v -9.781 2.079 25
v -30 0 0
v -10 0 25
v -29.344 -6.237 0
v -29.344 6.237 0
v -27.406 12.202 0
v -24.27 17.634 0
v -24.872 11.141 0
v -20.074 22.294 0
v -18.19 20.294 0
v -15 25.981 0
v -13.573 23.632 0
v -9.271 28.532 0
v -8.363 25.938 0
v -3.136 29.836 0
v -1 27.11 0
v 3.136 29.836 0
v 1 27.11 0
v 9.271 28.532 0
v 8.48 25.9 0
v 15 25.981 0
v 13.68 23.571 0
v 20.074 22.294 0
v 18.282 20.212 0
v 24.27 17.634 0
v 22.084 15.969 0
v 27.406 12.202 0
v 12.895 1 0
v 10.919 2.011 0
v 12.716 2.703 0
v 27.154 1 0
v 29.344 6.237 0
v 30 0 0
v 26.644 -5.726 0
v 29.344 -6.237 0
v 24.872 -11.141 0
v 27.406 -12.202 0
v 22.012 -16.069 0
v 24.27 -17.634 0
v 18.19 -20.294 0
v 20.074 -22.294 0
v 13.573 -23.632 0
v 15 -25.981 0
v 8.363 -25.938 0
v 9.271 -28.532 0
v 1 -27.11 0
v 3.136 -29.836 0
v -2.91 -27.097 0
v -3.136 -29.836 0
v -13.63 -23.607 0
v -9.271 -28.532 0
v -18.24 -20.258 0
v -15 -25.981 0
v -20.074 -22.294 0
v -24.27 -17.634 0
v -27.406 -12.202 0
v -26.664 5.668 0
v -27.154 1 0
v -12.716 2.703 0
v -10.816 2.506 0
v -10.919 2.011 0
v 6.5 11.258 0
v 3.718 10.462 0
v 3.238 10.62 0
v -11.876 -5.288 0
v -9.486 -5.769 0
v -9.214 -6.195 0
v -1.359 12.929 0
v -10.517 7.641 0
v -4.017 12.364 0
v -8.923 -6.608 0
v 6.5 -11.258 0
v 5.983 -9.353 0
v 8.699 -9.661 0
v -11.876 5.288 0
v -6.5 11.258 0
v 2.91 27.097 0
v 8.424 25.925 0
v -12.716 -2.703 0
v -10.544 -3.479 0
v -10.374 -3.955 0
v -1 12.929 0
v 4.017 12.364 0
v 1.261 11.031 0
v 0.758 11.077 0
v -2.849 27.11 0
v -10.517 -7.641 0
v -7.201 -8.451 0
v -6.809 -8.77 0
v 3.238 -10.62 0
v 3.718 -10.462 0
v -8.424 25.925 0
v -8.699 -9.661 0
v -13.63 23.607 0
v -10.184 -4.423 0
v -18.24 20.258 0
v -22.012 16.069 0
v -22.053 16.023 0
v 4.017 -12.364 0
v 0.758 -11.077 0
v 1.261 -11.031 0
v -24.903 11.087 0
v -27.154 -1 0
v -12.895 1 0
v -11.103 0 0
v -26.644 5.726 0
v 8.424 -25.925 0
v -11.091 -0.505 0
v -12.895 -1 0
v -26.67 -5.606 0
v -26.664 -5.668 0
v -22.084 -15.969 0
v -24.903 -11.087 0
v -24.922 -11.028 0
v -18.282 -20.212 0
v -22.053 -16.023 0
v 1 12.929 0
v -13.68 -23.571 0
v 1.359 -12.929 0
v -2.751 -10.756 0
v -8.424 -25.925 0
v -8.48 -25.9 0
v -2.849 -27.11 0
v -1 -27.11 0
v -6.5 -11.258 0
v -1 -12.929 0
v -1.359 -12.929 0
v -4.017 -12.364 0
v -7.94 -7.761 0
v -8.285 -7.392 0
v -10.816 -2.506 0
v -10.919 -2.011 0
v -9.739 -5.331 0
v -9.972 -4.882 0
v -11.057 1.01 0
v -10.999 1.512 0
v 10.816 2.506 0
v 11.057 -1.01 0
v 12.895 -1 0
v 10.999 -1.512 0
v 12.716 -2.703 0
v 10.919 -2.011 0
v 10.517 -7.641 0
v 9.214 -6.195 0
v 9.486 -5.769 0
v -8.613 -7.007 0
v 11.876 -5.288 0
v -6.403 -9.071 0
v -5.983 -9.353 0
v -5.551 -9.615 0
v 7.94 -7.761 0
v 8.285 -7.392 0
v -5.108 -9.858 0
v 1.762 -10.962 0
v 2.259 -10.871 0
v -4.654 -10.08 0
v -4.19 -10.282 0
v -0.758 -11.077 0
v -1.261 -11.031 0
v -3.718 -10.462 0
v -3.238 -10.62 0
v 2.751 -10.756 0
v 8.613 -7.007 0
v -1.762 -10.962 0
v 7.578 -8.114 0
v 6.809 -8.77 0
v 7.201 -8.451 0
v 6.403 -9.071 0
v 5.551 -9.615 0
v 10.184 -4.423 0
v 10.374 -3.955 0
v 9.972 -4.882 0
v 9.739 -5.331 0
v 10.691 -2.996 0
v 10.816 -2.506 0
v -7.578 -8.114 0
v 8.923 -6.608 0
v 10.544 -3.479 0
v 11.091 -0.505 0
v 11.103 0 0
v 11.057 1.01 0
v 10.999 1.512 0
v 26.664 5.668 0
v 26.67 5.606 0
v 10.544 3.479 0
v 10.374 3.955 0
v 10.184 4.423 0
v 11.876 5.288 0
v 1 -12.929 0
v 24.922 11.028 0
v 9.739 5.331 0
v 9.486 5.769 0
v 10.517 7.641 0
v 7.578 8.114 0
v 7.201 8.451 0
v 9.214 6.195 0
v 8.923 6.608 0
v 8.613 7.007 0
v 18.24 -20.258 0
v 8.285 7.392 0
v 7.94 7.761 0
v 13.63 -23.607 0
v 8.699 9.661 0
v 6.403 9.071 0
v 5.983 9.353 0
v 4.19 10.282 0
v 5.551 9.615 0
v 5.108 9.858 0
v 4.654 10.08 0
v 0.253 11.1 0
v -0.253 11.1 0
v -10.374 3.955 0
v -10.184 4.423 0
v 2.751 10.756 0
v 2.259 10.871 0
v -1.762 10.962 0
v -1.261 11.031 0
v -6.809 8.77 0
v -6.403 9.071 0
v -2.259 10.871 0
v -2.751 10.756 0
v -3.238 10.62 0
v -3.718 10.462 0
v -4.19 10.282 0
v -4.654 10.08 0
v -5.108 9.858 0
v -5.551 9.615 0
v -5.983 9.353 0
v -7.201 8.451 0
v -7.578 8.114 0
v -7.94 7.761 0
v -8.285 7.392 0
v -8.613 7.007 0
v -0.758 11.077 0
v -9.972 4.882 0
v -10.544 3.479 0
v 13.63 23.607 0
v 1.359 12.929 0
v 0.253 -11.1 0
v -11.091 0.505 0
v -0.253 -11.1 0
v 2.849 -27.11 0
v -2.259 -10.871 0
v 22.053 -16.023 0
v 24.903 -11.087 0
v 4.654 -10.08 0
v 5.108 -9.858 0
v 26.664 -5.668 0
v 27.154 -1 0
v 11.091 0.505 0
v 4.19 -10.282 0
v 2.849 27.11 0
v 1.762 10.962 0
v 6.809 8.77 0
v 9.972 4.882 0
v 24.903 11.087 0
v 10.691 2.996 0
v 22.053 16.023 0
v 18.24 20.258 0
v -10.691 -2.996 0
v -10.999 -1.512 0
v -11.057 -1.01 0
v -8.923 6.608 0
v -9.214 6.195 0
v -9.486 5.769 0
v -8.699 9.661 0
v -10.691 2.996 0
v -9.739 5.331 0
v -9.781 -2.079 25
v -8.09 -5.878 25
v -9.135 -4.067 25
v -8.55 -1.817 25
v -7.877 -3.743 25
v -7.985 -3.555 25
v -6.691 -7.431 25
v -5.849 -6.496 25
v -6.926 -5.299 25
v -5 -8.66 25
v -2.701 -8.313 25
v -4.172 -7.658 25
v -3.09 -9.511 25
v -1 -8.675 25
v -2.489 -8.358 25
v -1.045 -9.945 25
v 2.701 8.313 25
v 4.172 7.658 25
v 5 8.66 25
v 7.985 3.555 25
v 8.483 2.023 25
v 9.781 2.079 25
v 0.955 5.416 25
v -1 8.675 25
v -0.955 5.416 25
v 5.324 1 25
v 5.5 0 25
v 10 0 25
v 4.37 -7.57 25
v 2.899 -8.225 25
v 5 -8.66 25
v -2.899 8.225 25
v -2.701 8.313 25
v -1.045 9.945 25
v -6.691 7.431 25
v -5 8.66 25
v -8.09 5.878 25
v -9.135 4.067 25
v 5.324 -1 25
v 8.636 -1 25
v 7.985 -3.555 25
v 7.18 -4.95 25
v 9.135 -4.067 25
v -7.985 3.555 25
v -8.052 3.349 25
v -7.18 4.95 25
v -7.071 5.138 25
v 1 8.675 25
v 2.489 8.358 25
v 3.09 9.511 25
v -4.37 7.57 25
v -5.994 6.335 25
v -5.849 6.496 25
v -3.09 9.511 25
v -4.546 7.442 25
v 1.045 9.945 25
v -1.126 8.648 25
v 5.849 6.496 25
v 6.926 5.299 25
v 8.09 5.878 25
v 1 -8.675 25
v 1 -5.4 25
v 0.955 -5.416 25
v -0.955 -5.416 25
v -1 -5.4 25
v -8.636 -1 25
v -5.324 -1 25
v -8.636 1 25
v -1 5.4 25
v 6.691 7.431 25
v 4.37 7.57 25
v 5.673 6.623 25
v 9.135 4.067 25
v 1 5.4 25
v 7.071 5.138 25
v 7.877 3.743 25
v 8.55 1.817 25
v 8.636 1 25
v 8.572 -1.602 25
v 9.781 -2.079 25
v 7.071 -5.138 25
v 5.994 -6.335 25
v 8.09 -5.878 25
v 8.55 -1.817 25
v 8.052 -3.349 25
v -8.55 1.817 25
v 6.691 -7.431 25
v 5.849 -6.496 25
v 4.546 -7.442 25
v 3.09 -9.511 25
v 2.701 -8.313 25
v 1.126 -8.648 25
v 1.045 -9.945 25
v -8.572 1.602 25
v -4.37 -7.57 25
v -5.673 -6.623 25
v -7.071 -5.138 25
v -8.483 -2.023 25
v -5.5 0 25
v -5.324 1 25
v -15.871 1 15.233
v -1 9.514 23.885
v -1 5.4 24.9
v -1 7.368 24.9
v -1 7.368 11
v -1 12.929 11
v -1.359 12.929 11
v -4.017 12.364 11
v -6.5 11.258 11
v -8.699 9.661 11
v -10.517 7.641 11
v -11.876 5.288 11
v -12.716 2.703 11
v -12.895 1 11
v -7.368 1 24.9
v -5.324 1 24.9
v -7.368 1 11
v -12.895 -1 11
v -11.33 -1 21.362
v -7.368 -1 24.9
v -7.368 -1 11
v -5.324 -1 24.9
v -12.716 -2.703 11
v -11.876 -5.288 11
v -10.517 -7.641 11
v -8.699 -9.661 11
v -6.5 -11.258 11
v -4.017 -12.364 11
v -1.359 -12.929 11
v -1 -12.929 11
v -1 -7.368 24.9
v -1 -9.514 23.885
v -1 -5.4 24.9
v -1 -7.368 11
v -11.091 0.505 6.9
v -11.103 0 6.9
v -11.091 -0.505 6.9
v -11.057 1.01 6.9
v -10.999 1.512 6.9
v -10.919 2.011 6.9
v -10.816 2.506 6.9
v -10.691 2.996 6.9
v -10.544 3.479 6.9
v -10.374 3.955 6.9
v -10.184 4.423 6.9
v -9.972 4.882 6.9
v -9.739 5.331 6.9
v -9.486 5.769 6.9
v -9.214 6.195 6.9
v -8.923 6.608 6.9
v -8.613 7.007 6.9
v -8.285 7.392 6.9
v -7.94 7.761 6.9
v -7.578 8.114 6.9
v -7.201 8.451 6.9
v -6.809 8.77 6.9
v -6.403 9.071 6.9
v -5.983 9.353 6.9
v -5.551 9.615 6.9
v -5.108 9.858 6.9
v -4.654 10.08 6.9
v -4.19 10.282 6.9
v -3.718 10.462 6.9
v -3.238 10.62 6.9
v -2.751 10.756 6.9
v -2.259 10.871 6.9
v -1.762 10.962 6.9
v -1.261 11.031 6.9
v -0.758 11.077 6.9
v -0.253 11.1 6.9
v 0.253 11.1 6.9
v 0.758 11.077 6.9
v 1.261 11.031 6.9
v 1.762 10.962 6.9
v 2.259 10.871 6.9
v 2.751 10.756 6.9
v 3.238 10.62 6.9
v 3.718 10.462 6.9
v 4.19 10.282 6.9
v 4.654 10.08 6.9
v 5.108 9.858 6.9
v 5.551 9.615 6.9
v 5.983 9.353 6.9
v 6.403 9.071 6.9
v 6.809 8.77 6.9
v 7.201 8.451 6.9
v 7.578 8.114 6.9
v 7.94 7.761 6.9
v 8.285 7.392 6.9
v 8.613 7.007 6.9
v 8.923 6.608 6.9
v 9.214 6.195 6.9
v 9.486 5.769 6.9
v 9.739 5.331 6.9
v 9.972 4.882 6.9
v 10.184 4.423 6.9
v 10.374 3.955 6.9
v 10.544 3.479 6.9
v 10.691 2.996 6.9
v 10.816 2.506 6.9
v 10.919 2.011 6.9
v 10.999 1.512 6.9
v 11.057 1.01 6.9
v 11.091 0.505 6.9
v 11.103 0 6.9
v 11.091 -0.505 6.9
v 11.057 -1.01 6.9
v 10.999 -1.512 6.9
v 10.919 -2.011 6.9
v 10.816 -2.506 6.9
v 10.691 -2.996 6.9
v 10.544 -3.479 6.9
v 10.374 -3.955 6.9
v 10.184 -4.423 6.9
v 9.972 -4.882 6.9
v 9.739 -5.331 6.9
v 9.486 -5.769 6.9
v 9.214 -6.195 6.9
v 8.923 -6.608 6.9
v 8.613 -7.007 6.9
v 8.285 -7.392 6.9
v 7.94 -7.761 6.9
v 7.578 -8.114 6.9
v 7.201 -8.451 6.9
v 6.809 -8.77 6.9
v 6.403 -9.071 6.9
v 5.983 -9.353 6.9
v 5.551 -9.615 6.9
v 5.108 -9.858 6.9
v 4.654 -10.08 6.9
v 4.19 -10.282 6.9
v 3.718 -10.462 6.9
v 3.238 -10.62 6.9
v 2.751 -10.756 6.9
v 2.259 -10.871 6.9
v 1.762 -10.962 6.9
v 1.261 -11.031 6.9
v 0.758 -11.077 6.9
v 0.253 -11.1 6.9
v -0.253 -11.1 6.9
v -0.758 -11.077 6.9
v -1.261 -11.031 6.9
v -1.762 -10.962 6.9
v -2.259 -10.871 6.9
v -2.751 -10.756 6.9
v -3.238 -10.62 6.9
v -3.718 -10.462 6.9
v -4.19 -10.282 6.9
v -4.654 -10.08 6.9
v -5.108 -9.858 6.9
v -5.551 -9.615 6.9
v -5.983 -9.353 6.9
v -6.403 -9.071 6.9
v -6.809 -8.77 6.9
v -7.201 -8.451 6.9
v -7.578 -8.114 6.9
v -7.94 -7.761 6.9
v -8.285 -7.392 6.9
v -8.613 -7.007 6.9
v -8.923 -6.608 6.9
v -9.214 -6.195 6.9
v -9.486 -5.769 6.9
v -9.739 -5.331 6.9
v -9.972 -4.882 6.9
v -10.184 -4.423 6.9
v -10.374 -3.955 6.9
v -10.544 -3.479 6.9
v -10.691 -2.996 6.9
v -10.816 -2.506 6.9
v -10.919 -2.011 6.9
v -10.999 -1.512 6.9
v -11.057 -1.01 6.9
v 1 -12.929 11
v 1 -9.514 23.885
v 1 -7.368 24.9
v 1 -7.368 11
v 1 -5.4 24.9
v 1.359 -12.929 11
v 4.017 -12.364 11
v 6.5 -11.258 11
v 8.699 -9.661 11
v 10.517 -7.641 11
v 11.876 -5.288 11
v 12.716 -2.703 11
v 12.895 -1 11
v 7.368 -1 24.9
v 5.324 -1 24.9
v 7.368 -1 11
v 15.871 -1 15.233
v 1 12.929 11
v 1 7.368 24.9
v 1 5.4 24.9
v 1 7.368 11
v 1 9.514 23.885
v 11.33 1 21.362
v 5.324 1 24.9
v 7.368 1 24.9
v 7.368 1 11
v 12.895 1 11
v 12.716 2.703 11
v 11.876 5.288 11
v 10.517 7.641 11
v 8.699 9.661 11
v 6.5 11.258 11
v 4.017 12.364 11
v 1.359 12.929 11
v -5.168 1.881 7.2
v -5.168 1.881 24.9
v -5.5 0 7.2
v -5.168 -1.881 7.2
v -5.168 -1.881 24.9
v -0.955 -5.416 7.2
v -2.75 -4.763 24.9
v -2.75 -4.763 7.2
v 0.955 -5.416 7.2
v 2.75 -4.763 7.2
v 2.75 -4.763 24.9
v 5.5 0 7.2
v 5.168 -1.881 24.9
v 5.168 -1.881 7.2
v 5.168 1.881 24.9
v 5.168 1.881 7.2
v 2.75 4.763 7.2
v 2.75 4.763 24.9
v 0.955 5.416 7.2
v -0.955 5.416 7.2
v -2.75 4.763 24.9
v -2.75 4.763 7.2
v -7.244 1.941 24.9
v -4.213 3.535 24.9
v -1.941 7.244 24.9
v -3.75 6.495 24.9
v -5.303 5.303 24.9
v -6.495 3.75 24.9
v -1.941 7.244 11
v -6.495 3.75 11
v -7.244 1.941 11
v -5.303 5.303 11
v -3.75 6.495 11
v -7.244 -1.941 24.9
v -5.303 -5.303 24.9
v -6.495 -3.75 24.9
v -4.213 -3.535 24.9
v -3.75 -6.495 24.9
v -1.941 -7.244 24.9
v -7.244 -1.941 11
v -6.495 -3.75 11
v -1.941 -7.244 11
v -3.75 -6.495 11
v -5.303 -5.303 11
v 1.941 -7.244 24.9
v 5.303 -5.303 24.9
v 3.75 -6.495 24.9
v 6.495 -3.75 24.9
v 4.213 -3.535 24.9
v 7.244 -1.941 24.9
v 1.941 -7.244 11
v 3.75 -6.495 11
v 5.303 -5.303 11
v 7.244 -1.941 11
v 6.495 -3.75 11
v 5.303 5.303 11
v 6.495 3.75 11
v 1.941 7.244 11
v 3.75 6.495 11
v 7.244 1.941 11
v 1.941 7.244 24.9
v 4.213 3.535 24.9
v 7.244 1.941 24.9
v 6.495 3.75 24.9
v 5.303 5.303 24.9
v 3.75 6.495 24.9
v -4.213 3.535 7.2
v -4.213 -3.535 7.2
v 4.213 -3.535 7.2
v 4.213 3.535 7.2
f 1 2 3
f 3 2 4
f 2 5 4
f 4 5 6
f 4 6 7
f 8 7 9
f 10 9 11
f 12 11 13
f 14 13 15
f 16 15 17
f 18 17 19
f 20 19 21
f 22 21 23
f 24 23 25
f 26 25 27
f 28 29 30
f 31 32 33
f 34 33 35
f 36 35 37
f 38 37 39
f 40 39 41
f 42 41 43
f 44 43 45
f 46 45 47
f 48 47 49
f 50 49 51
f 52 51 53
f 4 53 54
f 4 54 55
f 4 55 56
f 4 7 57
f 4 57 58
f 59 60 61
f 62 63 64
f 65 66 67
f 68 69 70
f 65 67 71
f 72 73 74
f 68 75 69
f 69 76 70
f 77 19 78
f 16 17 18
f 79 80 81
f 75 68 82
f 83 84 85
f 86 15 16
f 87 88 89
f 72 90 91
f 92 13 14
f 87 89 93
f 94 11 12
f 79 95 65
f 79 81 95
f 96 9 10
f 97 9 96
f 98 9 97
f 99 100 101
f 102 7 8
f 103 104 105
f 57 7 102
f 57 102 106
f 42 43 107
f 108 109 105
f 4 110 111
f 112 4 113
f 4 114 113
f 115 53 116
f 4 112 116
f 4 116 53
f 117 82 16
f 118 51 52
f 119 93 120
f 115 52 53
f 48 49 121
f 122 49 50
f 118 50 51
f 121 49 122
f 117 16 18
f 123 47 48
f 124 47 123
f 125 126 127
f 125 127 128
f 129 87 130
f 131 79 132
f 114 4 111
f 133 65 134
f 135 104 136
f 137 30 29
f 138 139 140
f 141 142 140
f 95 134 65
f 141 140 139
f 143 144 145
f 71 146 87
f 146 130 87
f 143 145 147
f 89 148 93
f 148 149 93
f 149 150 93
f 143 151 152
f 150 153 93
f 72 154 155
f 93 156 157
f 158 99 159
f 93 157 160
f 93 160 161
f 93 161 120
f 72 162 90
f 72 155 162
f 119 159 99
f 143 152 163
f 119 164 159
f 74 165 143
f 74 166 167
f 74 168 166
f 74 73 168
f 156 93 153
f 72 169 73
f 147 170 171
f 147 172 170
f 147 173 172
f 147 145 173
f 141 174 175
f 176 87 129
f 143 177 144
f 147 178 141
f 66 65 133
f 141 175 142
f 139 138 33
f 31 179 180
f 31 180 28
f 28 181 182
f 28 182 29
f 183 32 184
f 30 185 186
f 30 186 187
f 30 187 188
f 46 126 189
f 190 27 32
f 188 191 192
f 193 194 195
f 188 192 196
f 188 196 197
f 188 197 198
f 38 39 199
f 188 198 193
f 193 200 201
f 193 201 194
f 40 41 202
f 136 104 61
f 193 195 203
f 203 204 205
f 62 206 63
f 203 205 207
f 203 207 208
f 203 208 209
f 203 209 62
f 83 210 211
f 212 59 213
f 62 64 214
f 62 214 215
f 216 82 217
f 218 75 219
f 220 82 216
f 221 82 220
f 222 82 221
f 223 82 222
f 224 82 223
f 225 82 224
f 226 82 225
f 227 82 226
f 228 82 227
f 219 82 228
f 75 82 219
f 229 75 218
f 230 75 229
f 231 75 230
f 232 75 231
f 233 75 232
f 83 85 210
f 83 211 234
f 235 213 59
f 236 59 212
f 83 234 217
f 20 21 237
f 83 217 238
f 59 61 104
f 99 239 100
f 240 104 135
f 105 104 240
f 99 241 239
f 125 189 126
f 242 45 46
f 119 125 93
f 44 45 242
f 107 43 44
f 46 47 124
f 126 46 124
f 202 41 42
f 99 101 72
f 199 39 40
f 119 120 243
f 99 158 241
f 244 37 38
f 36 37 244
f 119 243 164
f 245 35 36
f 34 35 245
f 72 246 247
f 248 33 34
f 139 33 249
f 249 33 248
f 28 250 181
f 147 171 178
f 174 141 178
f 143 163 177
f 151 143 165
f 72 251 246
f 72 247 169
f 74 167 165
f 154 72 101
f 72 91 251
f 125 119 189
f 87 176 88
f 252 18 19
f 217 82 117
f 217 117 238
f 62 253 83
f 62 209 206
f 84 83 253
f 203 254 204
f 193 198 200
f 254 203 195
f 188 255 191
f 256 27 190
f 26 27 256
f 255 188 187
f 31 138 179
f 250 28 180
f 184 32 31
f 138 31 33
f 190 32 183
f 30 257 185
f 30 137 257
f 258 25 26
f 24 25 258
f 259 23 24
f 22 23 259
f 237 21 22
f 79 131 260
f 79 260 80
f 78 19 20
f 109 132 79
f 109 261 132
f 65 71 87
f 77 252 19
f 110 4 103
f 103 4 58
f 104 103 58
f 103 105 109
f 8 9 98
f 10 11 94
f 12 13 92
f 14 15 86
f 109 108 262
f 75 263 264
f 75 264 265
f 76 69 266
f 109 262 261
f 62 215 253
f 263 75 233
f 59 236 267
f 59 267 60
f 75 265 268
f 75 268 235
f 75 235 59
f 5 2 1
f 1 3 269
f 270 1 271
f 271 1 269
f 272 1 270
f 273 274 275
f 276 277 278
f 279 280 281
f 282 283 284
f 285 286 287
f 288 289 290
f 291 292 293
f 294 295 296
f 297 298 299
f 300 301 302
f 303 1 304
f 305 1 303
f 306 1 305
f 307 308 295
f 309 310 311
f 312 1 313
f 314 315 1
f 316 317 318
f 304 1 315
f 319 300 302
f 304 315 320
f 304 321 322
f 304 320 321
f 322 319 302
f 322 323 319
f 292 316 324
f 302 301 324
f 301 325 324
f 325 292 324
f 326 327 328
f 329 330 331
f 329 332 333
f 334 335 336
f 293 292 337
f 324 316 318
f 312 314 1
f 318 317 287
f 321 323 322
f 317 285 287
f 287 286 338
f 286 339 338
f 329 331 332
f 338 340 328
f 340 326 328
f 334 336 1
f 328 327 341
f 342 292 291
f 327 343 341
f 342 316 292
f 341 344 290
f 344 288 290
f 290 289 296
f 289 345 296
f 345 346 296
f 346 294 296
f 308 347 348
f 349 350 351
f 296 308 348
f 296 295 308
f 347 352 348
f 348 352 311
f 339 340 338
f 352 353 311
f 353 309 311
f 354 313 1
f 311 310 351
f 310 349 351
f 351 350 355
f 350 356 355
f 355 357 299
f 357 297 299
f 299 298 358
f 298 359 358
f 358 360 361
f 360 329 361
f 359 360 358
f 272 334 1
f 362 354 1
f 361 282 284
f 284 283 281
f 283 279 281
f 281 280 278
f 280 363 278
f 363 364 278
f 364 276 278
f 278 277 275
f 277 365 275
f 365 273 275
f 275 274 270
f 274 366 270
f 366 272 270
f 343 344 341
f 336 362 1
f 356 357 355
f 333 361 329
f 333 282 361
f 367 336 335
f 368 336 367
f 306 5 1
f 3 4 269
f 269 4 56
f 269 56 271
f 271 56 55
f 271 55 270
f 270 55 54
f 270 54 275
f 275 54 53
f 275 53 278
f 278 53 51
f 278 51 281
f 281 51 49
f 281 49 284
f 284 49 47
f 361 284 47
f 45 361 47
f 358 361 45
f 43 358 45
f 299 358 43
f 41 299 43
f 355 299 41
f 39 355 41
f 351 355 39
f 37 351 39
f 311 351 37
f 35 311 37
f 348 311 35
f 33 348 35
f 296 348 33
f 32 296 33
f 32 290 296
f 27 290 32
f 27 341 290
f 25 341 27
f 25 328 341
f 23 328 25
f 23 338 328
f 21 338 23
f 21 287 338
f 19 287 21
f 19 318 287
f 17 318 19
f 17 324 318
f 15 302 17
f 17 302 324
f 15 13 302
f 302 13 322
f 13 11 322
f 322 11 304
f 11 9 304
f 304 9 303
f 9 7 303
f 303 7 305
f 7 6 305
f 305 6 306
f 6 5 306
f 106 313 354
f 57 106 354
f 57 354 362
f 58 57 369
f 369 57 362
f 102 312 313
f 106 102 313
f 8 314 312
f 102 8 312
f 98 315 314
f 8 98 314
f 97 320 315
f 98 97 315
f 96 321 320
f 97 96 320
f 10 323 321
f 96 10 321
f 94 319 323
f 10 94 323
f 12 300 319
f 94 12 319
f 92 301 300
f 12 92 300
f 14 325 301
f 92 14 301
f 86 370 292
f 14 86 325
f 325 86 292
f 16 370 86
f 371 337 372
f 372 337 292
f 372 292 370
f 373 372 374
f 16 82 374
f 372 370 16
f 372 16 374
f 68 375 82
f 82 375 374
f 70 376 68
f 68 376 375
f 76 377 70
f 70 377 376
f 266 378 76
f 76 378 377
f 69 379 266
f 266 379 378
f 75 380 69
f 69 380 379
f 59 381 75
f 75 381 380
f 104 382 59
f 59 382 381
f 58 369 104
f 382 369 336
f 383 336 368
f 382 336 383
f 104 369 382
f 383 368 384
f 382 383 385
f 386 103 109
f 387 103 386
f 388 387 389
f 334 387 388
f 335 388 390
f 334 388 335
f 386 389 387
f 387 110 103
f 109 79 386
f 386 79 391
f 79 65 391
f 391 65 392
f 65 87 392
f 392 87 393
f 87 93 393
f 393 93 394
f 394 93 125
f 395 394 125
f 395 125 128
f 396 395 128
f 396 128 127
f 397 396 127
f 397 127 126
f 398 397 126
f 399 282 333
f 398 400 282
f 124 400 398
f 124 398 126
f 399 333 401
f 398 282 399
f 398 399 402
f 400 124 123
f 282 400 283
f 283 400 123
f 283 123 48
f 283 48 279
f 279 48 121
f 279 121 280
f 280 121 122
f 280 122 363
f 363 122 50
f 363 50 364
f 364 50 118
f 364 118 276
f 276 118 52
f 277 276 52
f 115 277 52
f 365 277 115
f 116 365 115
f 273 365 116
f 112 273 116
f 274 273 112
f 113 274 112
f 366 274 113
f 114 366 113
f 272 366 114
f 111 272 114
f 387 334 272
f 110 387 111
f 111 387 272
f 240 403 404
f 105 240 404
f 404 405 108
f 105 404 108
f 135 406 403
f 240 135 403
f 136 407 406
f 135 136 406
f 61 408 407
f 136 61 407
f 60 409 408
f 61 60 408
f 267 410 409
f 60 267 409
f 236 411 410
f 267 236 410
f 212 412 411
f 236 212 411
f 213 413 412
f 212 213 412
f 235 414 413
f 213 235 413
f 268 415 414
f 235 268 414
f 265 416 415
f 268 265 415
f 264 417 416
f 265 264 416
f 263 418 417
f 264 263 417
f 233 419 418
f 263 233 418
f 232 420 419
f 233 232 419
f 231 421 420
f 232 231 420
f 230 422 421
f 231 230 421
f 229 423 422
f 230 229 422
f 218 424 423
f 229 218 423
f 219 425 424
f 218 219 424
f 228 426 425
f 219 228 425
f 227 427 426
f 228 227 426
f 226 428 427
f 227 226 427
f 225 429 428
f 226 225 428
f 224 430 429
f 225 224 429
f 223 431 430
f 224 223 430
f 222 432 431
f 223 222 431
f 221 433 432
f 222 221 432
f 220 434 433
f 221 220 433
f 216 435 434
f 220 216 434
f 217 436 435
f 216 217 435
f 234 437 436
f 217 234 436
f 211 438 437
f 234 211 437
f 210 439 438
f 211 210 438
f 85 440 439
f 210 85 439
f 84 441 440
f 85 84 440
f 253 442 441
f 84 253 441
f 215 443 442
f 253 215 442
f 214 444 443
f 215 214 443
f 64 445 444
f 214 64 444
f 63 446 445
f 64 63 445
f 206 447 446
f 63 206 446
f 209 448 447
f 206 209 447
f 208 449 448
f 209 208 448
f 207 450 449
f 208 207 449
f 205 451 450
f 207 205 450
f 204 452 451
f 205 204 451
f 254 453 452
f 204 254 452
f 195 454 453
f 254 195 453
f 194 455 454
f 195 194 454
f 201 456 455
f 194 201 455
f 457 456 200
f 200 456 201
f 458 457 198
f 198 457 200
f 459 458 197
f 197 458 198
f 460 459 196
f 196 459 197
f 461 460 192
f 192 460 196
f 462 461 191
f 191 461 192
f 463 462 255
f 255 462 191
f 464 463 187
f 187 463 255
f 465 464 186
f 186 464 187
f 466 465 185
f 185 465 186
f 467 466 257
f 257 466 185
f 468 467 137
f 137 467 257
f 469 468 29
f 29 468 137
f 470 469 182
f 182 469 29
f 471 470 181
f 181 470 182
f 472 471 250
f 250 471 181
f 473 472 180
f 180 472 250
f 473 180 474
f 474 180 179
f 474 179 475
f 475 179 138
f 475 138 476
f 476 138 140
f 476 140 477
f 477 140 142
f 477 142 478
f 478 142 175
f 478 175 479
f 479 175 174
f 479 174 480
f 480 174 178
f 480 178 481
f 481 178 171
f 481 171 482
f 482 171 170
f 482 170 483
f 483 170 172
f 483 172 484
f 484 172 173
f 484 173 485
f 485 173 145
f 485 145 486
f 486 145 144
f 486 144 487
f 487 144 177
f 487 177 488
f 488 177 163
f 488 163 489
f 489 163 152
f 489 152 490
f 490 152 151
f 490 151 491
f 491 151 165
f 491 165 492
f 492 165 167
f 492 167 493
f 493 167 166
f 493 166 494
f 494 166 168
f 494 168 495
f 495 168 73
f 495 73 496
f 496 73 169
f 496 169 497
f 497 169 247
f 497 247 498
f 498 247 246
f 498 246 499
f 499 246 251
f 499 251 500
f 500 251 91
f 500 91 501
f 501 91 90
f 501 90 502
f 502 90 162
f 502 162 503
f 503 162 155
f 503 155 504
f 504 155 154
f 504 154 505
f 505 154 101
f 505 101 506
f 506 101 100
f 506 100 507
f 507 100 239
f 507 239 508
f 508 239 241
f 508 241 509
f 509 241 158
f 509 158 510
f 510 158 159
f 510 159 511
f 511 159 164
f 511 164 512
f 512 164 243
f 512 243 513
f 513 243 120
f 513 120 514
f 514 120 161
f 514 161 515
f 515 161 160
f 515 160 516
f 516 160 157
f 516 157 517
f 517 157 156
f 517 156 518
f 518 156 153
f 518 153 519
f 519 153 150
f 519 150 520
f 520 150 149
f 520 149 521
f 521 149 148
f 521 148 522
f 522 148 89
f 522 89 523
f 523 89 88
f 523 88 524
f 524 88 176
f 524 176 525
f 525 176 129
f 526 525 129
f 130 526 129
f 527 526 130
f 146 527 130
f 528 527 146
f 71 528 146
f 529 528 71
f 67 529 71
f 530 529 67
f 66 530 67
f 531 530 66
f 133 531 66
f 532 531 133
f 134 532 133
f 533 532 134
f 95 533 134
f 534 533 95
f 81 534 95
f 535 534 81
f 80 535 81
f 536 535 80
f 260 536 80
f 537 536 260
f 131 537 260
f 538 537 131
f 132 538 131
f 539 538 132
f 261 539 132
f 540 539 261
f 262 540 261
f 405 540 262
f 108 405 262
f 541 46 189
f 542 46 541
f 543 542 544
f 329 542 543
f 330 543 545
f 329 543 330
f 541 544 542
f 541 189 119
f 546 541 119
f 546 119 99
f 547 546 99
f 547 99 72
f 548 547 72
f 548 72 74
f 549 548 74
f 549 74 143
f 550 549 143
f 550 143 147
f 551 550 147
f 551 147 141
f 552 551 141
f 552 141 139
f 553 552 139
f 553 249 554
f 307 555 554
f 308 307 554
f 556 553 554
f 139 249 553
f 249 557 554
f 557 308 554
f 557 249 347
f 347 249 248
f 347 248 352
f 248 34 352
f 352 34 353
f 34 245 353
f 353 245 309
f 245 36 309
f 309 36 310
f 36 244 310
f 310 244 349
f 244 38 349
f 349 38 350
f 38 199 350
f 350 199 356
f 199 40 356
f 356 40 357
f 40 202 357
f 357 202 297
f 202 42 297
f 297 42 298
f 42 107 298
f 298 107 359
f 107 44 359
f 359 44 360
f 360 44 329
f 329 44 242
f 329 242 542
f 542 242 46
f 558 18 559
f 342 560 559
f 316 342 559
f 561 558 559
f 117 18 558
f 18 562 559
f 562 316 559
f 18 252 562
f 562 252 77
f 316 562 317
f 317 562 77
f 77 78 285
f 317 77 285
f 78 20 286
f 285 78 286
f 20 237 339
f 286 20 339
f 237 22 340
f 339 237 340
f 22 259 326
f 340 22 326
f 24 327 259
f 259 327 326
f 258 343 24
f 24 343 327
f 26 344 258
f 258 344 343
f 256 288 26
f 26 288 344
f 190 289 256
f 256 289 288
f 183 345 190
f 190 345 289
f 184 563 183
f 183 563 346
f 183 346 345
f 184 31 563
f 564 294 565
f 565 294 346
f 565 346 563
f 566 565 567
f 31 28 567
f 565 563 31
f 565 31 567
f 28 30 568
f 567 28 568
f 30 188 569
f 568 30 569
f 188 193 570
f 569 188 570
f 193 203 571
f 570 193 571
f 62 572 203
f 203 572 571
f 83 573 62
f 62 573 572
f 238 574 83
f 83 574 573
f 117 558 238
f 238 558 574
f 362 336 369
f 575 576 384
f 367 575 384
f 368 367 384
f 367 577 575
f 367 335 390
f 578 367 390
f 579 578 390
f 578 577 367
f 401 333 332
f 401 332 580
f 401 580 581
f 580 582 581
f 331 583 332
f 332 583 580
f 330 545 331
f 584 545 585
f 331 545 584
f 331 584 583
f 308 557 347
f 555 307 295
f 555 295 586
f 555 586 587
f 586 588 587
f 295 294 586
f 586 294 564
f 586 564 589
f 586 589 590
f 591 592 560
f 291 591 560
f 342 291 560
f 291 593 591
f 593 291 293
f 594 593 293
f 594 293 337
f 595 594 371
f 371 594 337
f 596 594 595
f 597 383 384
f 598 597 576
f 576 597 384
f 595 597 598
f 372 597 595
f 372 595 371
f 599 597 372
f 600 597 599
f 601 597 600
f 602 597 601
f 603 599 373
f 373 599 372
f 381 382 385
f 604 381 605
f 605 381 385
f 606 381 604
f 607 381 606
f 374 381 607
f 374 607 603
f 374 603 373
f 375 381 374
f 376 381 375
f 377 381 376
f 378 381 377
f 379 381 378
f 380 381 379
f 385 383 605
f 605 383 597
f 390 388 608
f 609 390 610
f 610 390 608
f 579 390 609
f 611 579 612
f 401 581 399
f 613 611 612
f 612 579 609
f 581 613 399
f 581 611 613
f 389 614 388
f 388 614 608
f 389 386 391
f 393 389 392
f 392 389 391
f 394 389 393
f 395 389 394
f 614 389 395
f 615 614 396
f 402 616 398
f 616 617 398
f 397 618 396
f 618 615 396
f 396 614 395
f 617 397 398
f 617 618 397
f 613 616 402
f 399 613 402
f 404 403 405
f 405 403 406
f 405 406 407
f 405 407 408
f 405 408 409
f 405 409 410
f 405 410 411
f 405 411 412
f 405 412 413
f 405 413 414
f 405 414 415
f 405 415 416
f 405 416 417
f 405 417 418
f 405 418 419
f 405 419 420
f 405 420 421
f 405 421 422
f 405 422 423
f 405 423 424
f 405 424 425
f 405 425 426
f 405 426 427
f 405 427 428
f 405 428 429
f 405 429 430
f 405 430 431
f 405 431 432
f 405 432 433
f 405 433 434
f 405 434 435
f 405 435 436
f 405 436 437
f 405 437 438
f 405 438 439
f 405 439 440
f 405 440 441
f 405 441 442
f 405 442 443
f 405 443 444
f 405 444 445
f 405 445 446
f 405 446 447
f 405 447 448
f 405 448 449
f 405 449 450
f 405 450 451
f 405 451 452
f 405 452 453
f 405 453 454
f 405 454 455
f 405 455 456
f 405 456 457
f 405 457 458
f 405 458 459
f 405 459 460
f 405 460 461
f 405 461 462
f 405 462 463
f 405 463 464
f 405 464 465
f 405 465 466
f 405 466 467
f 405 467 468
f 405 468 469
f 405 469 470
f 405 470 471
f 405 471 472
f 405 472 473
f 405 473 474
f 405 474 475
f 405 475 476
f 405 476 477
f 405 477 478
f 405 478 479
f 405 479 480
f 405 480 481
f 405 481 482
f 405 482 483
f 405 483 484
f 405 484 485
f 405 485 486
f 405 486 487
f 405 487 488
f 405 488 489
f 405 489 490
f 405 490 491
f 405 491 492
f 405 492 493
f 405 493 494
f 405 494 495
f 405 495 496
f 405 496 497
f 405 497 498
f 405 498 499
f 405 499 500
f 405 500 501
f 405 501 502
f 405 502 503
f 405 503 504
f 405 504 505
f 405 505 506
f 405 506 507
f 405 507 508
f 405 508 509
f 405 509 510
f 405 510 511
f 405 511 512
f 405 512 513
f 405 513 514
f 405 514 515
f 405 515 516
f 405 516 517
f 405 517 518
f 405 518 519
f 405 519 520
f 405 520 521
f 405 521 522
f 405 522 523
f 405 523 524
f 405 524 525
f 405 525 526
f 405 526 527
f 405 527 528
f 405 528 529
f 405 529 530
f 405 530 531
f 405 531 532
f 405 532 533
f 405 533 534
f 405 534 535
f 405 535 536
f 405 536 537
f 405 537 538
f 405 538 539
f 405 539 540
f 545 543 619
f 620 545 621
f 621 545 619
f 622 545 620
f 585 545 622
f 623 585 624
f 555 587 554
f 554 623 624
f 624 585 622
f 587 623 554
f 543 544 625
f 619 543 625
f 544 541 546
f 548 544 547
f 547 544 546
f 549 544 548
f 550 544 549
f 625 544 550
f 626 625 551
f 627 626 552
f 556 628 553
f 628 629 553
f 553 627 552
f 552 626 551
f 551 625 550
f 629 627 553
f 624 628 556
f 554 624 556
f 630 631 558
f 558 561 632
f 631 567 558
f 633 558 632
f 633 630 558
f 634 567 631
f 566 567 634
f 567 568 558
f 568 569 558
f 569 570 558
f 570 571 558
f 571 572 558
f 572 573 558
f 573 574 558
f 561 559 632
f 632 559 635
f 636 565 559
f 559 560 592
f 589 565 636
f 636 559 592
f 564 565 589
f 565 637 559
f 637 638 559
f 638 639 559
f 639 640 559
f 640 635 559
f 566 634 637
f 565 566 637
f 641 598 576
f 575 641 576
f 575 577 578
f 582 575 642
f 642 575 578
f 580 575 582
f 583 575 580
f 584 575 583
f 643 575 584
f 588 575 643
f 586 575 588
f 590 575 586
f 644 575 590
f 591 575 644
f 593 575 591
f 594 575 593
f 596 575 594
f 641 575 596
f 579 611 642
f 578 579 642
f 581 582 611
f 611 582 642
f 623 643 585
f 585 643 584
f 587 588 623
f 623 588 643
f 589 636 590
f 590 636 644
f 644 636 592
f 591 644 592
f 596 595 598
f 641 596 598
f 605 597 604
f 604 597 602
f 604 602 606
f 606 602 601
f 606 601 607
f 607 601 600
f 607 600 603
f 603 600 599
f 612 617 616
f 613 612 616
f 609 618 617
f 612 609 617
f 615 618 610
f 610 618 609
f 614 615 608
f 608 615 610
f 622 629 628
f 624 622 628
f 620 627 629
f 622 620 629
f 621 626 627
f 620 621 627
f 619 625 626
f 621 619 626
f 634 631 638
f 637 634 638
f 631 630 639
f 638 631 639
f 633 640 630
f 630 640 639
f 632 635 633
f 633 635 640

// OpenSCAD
// file: myLibs.scad
pi= 3.14159265359;

module hole(diam, height, clearance= 0.1)
{
        fn= round(diam * pi / 0.5);
        cylinder(h= height, r=diam / 2 / cos(180 / fn) + clearance, $fn=fn);
}

module nutTrap(ffd, faces=6, height=1)
{
	cylinder(h= height, r=ffd / cos(180 / faces) / 2 + 0.05, $fn=faces);
}

// A slot which has rounded ends, but total length is l
module slot(d= 4, l= 8, ht= 1, clearance=0.1) {
	fn= round(d * pi / 0.5);
	rd= d / 2 / cos(180 / fn) + clearance;
	d1= rd*2;
	union() {
		translate([0,0,ht/2]) cube([l-d1, d1, ht], center=true);
		translate([-(l-d1)/2, 0, ht/2]) cylinder(h=ht, r=rd, $fn=fn, center=true);
		translate([(l-d1)/2, 0, ht/2]) cylinder(h=ht, r=rd, $fn=fn, center=true);
	}
}

module nslot(d=4, l= 8, ht=1, clearance=0.1) {
	x= l-(d+clearance);
	hull() {
		translate([x/2, 0, 0])  hole(d, ht, clearance);
		translate([-x/2,0,0]) hole(d,ht, clearance);
	}
}

module rounded_base(w, l, r, h) {
	v1= [w/2-r, l/2-r, 0];
	v2= [-w/2+r, -l/2+r, 0];
	v3= [-w/2+r, l/2-r, 0];
	v4= [w/2-r, -l/2+r, 0];
	hull() {
		translate(v1) cylinder(r= r, h=h);
		translate(v2) cylinder(r= r, h=h);
		translate(v3) cylinder(r= r, h=h);
		translate(v4) cylinder(r= r, h=h);
	}
}
// main file
// conical spool holder
use <myLibs.scad>

d1= 20;
d2= 60;
ht= 50/2;
thick= 2;

// 608
bearingThickness= 7;
bearingOD= 22;
bearingID= 8;

main();
//frame();

module cone() {
	cylinder(r1=d2/2, r2=d1/2, h=ht);
}

module body() {
	difference() {
		cone();
		translate([0, 0, -1]) cylinder(r1=d2/2-thick, r2=d1/2-thick, h=ht+2);
	}
}

module frame() {
	for(d= [ [2, d2, ht], [d2, 2, ht] ]) intersection() {
		cone();
		translate([0, 0, ht/2])  cube(size=d, center=true);
	}
}

module main() {
	union() {
		difference() {
			union() {
				body();
				frame();
				cylinder(r=(bearingOD+4)/2, h=bearingThickness+4);
				translate([0, 0, bearingThickness+4-0.1])  cylinder(r=(bearingID+3+4)/2, h=ht-(bearingThickness+4));
			}
			translate([0, 0, -0.05]) hole(bearingOD, bearingThickness);
			translate([0, 0, bearingThickness-0.1]) cylinder(r=(bearingID+3)/2, h=ht);
		}
		// support layer
		translate([0, 0, bearingThickness-0.1])  cylinder(r=(bearingOD+4)/2, h=0.3);
	}
}
